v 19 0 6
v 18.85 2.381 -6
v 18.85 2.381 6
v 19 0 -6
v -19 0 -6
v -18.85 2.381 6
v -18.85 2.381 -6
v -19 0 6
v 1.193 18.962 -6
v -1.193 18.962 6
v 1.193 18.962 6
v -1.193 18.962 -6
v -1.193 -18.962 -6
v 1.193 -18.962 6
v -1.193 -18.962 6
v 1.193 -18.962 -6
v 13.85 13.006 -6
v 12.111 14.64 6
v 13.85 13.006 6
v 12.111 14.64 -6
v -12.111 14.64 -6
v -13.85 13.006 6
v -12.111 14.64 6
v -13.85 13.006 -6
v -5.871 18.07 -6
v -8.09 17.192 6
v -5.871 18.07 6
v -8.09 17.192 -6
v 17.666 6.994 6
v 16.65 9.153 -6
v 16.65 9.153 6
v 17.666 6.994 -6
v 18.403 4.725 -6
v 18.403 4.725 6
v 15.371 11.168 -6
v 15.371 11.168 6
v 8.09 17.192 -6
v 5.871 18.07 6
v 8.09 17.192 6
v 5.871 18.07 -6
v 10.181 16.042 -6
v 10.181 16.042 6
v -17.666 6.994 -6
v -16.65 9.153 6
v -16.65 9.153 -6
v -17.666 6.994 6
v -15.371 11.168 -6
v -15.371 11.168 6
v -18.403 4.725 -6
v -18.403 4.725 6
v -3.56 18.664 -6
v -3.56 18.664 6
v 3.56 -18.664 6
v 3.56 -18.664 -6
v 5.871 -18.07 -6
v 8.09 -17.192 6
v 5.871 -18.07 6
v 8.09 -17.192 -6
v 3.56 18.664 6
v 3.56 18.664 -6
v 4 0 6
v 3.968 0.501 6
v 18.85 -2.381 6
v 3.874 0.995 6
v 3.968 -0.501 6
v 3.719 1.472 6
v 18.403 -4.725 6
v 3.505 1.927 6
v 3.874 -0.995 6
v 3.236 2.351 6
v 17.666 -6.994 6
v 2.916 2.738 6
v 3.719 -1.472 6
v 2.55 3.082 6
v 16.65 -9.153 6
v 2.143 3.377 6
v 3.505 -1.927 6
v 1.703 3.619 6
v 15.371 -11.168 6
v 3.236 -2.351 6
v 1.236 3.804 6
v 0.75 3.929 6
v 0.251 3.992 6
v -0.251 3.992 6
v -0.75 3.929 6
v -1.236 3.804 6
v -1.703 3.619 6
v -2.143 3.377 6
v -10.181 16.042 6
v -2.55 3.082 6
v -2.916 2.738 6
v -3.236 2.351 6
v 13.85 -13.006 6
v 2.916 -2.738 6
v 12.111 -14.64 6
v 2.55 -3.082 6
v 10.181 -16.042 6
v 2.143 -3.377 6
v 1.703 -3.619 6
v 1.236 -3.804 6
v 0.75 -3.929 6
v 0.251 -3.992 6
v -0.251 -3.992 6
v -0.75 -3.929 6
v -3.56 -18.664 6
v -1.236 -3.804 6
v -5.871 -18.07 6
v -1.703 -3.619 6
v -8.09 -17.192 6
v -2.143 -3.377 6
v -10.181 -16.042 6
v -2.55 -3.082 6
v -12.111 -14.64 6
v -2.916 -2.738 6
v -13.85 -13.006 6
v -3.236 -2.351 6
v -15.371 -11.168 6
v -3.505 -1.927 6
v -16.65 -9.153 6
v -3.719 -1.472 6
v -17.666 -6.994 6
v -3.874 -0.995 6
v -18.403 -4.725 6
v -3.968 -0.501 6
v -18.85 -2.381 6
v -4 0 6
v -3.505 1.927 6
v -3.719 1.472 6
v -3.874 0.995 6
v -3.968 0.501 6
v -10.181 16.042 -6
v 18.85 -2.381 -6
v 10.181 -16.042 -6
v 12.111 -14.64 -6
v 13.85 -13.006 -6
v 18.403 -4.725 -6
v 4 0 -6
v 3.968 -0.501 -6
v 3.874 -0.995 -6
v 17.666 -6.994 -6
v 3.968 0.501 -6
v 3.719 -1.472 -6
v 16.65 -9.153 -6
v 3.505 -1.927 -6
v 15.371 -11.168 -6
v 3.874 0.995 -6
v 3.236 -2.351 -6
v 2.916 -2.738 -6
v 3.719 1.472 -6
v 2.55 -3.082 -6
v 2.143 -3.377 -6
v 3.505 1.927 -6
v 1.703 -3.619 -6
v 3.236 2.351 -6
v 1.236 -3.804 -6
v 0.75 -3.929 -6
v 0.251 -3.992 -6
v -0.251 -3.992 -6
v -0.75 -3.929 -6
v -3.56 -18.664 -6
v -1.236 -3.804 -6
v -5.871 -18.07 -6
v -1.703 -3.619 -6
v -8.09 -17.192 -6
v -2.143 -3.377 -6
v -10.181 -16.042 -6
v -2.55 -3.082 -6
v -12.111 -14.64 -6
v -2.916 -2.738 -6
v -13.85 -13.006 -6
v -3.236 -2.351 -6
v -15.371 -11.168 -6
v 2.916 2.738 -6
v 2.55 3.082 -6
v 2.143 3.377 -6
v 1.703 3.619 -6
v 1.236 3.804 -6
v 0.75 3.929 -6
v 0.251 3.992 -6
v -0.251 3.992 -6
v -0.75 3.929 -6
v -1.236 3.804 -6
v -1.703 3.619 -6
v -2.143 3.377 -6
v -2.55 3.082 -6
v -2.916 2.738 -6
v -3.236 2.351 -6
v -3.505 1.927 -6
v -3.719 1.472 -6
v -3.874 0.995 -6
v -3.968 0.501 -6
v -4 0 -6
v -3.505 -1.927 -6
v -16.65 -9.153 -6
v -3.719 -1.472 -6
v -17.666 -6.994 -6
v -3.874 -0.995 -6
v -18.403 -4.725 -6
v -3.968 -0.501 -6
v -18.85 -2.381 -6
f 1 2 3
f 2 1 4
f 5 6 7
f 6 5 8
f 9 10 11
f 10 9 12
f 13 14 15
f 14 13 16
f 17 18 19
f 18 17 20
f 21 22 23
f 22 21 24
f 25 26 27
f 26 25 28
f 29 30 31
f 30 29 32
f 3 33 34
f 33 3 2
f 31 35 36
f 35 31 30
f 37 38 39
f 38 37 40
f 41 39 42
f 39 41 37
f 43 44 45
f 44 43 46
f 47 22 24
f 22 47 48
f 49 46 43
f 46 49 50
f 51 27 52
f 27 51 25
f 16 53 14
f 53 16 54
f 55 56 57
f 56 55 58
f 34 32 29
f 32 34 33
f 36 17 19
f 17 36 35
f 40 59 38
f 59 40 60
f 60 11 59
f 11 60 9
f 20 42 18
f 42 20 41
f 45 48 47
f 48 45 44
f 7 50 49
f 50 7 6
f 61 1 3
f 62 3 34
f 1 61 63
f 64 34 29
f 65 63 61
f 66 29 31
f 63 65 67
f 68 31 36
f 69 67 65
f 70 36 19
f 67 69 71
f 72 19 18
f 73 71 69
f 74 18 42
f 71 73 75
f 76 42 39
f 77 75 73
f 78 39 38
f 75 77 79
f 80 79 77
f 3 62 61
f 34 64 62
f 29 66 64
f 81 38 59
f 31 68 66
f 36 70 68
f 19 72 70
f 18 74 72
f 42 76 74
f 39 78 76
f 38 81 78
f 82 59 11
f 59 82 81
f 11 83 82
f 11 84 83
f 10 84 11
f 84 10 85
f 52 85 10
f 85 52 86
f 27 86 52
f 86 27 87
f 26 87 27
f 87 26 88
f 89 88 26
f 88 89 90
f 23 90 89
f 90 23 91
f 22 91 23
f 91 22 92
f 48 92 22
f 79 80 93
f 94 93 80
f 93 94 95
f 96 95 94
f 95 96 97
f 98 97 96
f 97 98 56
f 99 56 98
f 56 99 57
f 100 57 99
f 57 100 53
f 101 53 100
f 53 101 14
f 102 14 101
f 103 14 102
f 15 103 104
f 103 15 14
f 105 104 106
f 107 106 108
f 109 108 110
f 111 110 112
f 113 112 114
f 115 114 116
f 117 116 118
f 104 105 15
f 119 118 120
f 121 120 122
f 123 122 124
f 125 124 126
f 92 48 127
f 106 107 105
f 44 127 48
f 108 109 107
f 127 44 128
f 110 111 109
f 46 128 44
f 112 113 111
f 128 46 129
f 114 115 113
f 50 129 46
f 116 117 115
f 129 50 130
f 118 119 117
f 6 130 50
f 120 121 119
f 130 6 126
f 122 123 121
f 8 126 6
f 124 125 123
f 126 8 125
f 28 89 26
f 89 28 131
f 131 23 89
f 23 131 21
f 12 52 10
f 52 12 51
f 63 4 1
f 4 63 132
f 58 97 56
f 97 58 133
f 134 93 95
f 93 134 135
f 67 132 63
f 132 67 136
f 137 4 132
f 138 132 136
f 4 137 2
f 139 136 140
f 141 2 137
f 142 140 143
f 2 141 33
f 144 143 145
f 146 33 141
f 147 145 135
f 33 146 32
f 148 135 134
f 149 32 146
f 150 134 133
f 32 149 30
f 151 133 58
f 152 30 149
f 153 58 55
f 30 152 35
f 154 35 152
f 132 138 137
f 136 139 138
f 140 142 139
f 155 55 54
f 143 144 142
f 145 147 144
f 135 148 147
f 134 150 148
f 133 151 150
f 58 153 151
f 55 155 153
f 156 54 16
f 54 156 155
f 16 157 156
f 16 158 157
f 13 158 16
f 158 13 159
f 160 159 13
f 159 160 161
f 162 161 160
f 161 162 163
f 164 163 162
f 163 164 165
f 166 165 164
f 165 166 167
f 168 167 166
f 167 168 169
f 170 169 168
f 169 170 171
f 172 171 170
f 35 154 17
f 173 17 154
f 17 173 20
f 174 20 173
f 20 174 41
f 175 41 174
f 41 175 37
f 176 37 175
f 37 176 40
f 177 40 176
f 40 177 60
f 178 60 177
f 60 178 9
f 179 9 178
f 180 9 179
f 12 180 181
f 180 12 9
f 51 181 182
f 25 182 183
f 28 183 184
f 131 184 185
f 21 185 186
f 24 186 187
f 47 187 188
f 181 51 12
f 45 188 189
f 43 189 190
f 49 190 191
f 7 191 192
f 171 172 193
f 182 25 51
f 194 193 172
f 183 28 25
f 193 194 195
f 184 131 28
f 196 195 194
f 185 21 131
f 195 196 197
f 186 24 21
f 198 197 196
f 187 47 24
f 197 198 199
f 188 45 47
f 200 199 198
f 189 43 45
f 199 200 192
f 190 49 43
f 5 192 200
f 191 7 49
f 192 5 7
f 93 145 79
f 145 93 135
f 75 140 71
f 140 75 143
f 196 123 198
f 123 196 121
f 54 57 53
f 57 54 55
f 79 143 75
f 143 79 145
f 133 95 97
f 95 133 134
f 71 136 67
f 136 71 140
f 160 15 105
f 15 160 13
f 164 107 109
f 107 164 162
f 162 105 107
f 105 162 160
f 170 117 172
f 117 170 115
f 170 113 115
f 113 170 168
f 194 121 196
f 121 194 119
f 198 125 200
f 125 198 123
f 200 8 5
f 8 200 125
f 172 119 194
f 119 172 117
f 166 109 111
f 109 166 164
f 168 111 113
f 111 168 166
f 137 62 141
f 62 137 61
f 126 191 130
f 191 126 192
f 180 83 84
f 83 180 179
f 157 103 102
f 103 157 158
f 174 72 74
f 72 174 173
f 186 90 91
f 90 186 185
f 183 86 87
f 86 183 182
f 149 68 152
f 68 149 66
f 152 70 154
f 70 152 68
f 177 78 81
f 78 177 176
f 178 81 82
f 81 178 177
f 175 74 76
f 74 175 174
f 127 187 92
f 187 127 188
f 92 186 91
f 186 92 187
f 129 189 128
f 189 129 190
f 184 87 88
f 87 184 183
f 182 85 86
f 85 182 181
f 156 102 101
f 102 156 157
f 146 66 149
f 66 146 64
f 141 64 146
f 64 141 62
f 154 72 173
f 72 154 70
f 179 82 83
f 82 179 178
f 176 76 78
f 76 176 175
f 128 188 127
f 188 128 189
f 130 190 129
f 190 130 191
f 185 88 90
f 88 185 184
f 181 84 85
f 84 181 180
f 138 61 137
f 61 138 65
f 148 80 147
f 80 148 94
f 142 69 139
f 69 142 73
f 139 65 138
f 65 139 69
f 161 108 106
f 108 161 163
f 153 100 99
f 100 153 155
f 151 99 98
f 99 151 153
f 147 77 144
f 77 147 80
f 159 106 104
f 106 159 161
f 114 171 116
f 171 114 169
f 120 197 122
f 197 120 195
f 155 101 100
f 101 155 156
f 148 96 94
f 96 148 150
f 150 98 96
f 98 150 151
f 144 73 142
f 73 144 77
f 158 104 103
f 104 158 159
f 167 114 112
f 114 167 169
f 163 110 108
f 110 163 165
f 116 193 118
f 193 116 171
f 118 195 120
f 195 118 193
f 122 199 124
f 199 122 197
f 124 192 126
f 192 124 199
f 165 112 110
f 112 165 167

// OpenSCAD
$fn = 50;


difference() {
	union() {
		translate(v = [0, 0, -6.0000000000]) {
			cylinder(h = 12, r = 19.0000000000);
		}
	}
	union() {
		translate(v = [0, 0, -100.0000000000]) {
			cylinder(h = 200, r = 4.0000000000);
		}
	}
}
